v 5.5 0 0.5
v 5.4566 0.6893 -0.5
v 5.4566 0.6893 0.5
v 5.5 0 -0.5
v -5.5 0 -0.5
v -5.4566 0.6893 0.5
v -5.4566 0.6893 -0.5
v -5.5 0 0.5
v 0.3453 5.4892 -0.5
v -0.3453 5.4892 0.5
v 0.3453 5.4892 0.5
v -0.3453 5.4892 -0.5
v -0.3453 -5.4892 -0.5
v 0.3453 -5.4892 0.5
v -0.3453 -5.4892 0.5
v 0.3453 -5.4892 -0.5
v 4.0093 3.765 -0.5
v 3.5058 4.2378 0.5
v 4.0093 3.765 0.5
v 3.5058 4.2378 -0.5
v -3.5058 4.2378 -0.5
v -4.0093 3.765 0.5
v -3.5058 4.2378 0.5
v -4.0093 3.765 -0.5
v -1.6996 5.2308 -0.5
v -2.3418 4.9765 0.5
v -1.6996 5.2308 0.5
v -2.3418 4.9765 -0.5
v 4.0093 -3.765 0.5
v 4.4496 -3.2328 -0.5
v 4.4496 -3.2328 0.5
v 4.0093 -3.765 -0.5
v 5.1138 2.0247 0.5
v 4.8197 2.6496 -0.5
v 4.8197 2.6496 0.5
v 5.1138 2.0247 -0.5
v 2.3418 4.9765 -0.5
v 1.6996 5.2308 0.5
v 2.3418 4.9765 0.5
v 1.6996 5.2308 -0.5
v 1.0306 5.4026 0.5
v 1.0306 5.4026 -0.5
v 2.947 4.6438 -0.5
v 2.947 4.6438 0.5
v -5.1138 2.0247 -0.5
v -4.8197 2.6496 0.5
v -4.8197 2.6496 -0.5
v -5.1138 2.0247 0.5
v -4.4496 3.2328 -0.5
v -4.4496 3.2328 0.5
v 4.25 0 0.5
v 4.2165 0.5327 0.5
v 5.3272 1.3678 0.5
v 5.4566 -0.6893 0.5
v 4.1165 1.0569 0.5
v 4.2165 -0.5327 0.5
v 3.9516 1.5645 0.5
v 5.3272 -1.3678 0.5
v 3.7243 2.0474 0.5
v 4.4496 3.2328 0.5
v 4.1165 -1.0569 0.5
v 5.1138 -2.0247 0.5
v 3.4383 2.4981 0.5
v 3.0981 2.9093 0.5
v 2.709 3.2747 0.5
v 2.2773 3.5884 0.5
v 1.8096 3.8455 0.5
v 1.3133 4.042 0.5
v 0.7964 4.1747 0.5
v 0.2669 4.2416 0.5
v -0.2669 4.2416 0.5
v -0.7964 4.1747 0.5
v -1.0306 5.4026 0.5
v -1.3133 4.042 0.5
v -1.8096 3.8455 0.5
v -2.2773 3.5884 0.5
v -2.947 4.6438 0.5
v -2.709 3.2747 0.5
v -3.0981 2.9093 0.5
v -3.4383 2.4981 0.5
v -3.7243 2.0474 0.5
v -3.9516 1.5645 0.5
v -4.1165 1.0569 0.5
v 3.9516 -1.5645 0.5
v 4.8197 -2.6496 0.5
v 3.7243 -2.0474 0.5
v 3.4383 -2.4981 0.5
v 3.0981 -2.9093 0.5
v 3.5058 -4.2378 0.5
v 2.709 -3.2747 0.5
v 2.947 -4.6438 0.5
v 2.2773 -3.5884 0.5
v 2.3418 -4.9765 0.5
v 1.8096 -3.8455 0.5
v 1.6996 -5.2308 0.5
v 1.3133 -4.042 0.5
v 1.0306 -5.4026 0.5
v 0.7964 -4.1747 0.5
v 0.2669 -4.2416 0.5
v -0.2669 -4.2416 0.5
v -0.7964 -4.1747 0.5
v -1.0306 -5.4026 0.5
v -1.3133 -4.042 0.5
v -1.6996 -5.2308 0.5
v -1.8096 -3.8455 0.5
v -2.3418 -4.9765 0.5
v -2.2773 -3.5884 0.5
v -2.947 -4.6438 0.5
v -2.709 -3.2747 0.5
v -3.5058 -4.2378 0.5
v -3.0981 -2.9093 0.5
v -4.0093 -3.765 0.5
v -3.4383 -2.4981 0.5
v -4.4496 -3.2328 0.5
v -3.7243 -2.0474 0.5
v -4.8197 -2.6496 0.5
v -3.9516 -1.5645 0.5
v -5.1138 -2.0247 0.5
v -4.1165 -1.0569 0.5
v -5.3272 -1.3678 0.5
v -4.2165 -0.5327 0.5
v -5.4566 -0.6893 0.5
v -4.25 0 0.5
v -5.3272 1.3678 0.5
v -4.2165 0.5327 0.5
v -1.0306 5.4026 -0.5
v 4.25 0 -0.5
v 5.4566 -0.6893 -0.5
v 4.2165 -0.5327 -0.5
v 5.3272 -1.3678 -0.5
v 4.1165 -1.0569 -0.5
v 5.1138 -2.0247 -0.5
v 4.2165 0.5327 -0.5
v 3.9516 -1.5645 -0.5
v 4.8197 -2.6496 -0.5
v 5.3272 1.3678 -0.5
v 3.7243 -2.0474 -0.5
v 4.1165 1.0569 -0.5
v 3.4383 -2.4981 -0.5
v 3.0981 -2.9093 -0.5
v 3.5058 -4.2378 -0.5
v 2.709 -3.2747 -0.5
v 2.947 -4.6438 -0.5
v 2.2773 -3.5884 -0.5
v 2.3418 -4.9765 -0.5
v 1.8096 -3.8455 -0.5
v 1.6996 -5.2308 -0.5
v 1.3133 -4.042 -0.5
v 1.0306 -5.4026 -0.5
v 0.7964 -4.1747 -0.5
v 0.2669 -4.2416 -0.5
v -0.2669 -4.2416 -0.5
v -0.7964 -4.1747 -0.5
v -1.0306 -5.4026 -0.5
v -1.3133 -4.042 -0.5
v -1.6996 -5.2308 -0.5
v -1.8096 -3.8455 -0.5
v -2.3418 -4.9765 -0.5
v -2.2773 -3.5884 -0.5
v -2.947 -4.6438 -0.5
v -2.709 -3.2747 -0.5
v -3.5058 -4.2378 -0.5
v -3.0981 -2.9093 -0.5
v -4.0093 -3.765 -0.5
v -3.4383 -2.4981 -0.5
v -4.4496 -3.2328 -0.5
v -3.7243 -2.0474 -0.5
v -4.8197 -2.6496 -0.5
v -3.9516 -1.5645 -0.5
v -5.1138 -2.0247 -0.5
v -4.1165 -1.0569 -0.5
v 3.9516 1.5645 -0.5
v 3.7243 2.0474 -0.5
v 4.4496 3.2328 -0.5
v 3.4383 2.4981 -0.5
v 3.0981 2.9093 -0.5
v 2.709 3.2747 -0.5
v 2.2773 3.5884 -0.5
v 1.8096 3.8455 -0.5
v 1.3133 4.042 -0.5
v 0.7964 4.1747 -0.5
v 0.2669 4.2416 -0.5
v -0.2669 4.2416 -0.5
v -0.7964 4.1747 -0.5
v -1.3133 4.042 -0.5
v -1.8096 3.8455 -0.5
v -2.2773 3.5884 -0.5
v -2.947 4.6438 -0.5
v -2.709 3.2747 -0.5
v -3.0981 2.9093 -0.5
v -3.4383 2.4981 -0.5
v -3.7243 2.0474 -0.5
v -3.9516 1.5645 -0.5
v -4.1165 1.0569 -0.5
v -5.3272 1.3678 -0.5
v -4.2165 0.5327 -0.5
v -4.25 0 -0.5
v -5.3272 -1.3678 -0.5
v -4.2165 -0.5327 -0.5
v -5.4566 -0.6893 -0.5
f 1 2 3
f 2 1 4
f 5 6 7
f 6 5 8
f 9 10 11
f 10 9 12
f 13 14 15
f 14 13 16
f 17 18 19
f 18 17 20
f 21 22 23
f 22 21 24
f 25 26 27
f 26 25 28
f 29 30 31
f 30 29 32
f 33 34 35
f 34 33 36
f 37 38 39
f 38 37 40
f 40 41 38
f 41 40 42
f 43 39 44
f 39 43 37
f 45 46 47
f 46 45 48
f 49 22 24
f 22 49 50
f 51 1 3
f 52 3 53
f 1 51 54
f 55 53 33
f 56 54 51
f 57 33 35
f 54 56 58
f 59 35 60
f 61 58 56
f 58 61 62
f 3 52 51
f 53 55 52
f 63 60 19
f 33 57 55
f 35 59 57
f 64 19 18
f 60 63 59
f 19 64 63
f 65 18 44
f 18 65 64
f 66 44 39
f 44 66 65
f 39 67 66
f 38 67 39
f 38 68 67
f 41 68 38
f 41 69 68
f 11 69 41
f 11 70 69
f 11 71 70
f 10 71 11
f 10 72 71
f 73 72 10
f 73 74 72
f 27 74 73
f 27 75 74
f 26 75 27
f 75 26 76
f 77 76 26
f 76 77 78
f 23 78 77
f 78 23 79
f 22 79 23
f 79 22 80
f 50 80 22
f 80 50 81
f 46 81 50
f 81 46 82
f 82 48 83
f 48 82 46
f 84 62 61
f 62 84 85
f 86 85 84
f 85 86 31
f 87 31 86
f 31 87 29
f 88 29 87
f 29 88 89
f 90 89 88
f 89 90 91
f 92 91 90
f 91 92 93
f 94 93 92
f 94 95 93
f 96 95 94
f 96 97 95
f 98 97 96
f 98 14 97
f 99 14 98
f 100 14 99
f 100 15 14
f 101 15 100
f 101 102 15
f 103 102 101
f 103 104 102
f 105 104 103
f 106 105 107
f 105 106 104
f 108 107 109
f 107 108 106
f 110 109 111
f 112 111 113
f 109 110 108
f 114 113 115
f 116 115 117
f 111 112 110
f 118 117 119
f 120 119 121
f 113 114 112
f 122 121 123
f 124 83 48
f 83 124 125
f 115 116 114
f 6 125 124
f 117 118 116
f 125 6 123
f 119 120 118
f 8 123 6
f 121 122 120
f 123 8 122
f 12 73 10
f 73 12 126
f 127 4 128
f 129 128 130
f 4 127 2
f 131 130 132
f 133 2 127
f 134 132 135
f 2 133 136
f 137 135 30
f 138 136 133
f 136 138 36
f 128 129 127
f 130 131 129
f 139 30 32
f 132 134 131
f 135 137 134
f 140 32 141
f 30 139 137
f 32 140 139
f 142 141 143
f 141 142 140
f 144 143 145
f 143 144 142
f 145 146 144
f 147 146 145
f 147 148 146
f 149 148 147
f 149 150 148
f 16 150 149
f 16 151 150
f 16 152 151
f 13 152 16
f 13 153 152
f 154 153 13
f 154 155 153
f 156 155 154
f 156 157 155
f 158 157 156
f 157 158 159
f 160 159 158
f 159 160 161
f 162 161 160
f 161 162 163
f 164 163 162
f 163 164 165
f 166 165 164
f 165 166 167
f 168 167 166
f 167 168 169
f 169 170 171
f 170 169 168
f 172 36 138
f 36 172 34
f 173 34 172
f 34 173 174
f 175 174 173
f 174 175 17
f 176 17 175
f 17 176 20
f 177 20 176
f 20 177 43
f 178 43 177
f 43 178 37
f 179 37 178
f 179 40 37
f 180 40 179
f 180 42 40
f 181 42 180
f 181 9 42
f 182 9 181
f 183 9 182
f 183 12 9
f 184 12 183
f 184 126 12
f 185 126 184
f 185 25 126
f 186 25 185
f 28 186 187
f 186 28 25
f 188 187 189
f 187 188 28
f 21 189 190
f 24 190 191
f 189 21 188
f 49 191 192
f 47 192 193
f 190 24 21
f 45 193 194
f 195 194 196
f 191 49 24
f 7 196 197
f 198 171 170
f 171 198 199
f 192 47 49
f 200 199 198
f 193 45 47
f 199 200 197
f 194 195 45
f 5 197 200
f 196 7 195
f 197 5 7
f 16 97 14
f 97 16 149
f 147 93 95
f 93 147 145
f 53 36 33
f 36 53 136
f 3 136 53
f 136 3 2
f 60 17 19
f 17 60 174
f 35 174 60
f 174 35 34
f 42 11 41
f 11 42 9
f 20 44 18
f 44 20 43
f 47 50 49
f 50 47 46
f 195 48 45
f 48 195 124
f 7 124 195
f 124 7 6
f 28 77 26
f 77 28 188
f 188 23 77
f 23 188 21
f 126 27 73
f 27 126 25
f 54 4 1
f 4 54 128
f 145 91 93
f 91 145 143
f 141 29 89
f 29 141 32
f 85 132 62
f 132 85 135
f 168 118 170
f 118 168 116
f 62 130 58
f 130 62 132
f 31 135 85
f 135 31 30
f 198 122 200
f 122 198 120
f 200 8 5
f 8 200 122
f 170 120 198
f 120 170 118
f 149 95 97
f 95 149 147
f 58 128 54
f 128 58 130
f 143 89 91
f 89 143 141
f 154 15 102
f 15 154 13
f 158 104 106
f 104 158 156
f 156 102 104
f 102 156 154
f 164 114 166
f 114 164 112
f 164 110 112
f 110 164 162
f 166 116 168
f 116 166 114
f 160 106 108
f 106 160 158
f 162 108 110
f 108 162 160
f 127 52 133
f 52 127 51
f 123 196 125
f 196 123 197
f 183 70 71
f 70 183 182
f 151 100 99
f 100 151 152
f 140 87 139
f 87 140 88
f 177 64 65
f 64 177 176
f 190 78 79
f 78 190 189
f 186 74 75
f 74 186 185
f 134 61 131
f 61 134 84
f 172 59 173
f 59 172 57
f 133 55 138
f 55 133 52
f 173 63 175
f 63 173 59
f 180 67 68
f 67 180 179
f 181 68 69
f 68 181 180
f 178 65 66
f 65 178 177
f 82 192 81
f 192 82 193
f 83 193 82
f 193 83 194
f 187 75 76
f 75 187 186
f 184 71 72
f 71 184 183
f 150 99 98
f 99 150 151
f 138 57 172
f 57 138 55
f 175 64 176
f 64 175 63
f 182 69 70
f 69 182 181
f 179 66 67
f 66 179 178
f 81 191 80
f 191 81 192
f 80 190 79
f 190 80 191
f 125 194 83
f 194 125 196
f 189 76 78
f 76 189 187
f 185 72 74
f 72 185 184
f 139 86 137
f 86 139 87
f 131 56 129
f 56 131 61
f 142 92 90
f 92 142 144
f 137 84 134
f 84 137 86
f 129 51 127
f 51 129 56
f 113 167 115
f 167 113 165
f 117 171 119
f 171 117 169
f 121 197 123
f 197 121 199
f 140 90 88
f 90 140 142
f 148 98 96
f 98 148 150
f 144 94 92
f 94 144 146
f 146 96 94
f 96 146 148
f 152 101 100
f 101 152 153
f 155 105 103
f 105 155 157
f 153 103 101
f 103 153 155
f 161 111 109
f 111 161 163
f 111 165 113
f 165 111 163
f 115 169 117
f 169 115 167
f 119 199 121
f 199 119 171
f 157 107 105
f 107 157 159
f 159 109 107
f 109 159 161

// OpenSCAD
$fn = 50;


difference() {
	union() {
		translate(v = [0, 0, -0.5000000000]) {
			cylinder(h = 1, r = 5.5000000000);
		}
	}
	union() {
		translate(v = [0, 0, -100.0000000000]) {
			cylinder(h = 200, r = 4.2500000000);
		}
	}
}
